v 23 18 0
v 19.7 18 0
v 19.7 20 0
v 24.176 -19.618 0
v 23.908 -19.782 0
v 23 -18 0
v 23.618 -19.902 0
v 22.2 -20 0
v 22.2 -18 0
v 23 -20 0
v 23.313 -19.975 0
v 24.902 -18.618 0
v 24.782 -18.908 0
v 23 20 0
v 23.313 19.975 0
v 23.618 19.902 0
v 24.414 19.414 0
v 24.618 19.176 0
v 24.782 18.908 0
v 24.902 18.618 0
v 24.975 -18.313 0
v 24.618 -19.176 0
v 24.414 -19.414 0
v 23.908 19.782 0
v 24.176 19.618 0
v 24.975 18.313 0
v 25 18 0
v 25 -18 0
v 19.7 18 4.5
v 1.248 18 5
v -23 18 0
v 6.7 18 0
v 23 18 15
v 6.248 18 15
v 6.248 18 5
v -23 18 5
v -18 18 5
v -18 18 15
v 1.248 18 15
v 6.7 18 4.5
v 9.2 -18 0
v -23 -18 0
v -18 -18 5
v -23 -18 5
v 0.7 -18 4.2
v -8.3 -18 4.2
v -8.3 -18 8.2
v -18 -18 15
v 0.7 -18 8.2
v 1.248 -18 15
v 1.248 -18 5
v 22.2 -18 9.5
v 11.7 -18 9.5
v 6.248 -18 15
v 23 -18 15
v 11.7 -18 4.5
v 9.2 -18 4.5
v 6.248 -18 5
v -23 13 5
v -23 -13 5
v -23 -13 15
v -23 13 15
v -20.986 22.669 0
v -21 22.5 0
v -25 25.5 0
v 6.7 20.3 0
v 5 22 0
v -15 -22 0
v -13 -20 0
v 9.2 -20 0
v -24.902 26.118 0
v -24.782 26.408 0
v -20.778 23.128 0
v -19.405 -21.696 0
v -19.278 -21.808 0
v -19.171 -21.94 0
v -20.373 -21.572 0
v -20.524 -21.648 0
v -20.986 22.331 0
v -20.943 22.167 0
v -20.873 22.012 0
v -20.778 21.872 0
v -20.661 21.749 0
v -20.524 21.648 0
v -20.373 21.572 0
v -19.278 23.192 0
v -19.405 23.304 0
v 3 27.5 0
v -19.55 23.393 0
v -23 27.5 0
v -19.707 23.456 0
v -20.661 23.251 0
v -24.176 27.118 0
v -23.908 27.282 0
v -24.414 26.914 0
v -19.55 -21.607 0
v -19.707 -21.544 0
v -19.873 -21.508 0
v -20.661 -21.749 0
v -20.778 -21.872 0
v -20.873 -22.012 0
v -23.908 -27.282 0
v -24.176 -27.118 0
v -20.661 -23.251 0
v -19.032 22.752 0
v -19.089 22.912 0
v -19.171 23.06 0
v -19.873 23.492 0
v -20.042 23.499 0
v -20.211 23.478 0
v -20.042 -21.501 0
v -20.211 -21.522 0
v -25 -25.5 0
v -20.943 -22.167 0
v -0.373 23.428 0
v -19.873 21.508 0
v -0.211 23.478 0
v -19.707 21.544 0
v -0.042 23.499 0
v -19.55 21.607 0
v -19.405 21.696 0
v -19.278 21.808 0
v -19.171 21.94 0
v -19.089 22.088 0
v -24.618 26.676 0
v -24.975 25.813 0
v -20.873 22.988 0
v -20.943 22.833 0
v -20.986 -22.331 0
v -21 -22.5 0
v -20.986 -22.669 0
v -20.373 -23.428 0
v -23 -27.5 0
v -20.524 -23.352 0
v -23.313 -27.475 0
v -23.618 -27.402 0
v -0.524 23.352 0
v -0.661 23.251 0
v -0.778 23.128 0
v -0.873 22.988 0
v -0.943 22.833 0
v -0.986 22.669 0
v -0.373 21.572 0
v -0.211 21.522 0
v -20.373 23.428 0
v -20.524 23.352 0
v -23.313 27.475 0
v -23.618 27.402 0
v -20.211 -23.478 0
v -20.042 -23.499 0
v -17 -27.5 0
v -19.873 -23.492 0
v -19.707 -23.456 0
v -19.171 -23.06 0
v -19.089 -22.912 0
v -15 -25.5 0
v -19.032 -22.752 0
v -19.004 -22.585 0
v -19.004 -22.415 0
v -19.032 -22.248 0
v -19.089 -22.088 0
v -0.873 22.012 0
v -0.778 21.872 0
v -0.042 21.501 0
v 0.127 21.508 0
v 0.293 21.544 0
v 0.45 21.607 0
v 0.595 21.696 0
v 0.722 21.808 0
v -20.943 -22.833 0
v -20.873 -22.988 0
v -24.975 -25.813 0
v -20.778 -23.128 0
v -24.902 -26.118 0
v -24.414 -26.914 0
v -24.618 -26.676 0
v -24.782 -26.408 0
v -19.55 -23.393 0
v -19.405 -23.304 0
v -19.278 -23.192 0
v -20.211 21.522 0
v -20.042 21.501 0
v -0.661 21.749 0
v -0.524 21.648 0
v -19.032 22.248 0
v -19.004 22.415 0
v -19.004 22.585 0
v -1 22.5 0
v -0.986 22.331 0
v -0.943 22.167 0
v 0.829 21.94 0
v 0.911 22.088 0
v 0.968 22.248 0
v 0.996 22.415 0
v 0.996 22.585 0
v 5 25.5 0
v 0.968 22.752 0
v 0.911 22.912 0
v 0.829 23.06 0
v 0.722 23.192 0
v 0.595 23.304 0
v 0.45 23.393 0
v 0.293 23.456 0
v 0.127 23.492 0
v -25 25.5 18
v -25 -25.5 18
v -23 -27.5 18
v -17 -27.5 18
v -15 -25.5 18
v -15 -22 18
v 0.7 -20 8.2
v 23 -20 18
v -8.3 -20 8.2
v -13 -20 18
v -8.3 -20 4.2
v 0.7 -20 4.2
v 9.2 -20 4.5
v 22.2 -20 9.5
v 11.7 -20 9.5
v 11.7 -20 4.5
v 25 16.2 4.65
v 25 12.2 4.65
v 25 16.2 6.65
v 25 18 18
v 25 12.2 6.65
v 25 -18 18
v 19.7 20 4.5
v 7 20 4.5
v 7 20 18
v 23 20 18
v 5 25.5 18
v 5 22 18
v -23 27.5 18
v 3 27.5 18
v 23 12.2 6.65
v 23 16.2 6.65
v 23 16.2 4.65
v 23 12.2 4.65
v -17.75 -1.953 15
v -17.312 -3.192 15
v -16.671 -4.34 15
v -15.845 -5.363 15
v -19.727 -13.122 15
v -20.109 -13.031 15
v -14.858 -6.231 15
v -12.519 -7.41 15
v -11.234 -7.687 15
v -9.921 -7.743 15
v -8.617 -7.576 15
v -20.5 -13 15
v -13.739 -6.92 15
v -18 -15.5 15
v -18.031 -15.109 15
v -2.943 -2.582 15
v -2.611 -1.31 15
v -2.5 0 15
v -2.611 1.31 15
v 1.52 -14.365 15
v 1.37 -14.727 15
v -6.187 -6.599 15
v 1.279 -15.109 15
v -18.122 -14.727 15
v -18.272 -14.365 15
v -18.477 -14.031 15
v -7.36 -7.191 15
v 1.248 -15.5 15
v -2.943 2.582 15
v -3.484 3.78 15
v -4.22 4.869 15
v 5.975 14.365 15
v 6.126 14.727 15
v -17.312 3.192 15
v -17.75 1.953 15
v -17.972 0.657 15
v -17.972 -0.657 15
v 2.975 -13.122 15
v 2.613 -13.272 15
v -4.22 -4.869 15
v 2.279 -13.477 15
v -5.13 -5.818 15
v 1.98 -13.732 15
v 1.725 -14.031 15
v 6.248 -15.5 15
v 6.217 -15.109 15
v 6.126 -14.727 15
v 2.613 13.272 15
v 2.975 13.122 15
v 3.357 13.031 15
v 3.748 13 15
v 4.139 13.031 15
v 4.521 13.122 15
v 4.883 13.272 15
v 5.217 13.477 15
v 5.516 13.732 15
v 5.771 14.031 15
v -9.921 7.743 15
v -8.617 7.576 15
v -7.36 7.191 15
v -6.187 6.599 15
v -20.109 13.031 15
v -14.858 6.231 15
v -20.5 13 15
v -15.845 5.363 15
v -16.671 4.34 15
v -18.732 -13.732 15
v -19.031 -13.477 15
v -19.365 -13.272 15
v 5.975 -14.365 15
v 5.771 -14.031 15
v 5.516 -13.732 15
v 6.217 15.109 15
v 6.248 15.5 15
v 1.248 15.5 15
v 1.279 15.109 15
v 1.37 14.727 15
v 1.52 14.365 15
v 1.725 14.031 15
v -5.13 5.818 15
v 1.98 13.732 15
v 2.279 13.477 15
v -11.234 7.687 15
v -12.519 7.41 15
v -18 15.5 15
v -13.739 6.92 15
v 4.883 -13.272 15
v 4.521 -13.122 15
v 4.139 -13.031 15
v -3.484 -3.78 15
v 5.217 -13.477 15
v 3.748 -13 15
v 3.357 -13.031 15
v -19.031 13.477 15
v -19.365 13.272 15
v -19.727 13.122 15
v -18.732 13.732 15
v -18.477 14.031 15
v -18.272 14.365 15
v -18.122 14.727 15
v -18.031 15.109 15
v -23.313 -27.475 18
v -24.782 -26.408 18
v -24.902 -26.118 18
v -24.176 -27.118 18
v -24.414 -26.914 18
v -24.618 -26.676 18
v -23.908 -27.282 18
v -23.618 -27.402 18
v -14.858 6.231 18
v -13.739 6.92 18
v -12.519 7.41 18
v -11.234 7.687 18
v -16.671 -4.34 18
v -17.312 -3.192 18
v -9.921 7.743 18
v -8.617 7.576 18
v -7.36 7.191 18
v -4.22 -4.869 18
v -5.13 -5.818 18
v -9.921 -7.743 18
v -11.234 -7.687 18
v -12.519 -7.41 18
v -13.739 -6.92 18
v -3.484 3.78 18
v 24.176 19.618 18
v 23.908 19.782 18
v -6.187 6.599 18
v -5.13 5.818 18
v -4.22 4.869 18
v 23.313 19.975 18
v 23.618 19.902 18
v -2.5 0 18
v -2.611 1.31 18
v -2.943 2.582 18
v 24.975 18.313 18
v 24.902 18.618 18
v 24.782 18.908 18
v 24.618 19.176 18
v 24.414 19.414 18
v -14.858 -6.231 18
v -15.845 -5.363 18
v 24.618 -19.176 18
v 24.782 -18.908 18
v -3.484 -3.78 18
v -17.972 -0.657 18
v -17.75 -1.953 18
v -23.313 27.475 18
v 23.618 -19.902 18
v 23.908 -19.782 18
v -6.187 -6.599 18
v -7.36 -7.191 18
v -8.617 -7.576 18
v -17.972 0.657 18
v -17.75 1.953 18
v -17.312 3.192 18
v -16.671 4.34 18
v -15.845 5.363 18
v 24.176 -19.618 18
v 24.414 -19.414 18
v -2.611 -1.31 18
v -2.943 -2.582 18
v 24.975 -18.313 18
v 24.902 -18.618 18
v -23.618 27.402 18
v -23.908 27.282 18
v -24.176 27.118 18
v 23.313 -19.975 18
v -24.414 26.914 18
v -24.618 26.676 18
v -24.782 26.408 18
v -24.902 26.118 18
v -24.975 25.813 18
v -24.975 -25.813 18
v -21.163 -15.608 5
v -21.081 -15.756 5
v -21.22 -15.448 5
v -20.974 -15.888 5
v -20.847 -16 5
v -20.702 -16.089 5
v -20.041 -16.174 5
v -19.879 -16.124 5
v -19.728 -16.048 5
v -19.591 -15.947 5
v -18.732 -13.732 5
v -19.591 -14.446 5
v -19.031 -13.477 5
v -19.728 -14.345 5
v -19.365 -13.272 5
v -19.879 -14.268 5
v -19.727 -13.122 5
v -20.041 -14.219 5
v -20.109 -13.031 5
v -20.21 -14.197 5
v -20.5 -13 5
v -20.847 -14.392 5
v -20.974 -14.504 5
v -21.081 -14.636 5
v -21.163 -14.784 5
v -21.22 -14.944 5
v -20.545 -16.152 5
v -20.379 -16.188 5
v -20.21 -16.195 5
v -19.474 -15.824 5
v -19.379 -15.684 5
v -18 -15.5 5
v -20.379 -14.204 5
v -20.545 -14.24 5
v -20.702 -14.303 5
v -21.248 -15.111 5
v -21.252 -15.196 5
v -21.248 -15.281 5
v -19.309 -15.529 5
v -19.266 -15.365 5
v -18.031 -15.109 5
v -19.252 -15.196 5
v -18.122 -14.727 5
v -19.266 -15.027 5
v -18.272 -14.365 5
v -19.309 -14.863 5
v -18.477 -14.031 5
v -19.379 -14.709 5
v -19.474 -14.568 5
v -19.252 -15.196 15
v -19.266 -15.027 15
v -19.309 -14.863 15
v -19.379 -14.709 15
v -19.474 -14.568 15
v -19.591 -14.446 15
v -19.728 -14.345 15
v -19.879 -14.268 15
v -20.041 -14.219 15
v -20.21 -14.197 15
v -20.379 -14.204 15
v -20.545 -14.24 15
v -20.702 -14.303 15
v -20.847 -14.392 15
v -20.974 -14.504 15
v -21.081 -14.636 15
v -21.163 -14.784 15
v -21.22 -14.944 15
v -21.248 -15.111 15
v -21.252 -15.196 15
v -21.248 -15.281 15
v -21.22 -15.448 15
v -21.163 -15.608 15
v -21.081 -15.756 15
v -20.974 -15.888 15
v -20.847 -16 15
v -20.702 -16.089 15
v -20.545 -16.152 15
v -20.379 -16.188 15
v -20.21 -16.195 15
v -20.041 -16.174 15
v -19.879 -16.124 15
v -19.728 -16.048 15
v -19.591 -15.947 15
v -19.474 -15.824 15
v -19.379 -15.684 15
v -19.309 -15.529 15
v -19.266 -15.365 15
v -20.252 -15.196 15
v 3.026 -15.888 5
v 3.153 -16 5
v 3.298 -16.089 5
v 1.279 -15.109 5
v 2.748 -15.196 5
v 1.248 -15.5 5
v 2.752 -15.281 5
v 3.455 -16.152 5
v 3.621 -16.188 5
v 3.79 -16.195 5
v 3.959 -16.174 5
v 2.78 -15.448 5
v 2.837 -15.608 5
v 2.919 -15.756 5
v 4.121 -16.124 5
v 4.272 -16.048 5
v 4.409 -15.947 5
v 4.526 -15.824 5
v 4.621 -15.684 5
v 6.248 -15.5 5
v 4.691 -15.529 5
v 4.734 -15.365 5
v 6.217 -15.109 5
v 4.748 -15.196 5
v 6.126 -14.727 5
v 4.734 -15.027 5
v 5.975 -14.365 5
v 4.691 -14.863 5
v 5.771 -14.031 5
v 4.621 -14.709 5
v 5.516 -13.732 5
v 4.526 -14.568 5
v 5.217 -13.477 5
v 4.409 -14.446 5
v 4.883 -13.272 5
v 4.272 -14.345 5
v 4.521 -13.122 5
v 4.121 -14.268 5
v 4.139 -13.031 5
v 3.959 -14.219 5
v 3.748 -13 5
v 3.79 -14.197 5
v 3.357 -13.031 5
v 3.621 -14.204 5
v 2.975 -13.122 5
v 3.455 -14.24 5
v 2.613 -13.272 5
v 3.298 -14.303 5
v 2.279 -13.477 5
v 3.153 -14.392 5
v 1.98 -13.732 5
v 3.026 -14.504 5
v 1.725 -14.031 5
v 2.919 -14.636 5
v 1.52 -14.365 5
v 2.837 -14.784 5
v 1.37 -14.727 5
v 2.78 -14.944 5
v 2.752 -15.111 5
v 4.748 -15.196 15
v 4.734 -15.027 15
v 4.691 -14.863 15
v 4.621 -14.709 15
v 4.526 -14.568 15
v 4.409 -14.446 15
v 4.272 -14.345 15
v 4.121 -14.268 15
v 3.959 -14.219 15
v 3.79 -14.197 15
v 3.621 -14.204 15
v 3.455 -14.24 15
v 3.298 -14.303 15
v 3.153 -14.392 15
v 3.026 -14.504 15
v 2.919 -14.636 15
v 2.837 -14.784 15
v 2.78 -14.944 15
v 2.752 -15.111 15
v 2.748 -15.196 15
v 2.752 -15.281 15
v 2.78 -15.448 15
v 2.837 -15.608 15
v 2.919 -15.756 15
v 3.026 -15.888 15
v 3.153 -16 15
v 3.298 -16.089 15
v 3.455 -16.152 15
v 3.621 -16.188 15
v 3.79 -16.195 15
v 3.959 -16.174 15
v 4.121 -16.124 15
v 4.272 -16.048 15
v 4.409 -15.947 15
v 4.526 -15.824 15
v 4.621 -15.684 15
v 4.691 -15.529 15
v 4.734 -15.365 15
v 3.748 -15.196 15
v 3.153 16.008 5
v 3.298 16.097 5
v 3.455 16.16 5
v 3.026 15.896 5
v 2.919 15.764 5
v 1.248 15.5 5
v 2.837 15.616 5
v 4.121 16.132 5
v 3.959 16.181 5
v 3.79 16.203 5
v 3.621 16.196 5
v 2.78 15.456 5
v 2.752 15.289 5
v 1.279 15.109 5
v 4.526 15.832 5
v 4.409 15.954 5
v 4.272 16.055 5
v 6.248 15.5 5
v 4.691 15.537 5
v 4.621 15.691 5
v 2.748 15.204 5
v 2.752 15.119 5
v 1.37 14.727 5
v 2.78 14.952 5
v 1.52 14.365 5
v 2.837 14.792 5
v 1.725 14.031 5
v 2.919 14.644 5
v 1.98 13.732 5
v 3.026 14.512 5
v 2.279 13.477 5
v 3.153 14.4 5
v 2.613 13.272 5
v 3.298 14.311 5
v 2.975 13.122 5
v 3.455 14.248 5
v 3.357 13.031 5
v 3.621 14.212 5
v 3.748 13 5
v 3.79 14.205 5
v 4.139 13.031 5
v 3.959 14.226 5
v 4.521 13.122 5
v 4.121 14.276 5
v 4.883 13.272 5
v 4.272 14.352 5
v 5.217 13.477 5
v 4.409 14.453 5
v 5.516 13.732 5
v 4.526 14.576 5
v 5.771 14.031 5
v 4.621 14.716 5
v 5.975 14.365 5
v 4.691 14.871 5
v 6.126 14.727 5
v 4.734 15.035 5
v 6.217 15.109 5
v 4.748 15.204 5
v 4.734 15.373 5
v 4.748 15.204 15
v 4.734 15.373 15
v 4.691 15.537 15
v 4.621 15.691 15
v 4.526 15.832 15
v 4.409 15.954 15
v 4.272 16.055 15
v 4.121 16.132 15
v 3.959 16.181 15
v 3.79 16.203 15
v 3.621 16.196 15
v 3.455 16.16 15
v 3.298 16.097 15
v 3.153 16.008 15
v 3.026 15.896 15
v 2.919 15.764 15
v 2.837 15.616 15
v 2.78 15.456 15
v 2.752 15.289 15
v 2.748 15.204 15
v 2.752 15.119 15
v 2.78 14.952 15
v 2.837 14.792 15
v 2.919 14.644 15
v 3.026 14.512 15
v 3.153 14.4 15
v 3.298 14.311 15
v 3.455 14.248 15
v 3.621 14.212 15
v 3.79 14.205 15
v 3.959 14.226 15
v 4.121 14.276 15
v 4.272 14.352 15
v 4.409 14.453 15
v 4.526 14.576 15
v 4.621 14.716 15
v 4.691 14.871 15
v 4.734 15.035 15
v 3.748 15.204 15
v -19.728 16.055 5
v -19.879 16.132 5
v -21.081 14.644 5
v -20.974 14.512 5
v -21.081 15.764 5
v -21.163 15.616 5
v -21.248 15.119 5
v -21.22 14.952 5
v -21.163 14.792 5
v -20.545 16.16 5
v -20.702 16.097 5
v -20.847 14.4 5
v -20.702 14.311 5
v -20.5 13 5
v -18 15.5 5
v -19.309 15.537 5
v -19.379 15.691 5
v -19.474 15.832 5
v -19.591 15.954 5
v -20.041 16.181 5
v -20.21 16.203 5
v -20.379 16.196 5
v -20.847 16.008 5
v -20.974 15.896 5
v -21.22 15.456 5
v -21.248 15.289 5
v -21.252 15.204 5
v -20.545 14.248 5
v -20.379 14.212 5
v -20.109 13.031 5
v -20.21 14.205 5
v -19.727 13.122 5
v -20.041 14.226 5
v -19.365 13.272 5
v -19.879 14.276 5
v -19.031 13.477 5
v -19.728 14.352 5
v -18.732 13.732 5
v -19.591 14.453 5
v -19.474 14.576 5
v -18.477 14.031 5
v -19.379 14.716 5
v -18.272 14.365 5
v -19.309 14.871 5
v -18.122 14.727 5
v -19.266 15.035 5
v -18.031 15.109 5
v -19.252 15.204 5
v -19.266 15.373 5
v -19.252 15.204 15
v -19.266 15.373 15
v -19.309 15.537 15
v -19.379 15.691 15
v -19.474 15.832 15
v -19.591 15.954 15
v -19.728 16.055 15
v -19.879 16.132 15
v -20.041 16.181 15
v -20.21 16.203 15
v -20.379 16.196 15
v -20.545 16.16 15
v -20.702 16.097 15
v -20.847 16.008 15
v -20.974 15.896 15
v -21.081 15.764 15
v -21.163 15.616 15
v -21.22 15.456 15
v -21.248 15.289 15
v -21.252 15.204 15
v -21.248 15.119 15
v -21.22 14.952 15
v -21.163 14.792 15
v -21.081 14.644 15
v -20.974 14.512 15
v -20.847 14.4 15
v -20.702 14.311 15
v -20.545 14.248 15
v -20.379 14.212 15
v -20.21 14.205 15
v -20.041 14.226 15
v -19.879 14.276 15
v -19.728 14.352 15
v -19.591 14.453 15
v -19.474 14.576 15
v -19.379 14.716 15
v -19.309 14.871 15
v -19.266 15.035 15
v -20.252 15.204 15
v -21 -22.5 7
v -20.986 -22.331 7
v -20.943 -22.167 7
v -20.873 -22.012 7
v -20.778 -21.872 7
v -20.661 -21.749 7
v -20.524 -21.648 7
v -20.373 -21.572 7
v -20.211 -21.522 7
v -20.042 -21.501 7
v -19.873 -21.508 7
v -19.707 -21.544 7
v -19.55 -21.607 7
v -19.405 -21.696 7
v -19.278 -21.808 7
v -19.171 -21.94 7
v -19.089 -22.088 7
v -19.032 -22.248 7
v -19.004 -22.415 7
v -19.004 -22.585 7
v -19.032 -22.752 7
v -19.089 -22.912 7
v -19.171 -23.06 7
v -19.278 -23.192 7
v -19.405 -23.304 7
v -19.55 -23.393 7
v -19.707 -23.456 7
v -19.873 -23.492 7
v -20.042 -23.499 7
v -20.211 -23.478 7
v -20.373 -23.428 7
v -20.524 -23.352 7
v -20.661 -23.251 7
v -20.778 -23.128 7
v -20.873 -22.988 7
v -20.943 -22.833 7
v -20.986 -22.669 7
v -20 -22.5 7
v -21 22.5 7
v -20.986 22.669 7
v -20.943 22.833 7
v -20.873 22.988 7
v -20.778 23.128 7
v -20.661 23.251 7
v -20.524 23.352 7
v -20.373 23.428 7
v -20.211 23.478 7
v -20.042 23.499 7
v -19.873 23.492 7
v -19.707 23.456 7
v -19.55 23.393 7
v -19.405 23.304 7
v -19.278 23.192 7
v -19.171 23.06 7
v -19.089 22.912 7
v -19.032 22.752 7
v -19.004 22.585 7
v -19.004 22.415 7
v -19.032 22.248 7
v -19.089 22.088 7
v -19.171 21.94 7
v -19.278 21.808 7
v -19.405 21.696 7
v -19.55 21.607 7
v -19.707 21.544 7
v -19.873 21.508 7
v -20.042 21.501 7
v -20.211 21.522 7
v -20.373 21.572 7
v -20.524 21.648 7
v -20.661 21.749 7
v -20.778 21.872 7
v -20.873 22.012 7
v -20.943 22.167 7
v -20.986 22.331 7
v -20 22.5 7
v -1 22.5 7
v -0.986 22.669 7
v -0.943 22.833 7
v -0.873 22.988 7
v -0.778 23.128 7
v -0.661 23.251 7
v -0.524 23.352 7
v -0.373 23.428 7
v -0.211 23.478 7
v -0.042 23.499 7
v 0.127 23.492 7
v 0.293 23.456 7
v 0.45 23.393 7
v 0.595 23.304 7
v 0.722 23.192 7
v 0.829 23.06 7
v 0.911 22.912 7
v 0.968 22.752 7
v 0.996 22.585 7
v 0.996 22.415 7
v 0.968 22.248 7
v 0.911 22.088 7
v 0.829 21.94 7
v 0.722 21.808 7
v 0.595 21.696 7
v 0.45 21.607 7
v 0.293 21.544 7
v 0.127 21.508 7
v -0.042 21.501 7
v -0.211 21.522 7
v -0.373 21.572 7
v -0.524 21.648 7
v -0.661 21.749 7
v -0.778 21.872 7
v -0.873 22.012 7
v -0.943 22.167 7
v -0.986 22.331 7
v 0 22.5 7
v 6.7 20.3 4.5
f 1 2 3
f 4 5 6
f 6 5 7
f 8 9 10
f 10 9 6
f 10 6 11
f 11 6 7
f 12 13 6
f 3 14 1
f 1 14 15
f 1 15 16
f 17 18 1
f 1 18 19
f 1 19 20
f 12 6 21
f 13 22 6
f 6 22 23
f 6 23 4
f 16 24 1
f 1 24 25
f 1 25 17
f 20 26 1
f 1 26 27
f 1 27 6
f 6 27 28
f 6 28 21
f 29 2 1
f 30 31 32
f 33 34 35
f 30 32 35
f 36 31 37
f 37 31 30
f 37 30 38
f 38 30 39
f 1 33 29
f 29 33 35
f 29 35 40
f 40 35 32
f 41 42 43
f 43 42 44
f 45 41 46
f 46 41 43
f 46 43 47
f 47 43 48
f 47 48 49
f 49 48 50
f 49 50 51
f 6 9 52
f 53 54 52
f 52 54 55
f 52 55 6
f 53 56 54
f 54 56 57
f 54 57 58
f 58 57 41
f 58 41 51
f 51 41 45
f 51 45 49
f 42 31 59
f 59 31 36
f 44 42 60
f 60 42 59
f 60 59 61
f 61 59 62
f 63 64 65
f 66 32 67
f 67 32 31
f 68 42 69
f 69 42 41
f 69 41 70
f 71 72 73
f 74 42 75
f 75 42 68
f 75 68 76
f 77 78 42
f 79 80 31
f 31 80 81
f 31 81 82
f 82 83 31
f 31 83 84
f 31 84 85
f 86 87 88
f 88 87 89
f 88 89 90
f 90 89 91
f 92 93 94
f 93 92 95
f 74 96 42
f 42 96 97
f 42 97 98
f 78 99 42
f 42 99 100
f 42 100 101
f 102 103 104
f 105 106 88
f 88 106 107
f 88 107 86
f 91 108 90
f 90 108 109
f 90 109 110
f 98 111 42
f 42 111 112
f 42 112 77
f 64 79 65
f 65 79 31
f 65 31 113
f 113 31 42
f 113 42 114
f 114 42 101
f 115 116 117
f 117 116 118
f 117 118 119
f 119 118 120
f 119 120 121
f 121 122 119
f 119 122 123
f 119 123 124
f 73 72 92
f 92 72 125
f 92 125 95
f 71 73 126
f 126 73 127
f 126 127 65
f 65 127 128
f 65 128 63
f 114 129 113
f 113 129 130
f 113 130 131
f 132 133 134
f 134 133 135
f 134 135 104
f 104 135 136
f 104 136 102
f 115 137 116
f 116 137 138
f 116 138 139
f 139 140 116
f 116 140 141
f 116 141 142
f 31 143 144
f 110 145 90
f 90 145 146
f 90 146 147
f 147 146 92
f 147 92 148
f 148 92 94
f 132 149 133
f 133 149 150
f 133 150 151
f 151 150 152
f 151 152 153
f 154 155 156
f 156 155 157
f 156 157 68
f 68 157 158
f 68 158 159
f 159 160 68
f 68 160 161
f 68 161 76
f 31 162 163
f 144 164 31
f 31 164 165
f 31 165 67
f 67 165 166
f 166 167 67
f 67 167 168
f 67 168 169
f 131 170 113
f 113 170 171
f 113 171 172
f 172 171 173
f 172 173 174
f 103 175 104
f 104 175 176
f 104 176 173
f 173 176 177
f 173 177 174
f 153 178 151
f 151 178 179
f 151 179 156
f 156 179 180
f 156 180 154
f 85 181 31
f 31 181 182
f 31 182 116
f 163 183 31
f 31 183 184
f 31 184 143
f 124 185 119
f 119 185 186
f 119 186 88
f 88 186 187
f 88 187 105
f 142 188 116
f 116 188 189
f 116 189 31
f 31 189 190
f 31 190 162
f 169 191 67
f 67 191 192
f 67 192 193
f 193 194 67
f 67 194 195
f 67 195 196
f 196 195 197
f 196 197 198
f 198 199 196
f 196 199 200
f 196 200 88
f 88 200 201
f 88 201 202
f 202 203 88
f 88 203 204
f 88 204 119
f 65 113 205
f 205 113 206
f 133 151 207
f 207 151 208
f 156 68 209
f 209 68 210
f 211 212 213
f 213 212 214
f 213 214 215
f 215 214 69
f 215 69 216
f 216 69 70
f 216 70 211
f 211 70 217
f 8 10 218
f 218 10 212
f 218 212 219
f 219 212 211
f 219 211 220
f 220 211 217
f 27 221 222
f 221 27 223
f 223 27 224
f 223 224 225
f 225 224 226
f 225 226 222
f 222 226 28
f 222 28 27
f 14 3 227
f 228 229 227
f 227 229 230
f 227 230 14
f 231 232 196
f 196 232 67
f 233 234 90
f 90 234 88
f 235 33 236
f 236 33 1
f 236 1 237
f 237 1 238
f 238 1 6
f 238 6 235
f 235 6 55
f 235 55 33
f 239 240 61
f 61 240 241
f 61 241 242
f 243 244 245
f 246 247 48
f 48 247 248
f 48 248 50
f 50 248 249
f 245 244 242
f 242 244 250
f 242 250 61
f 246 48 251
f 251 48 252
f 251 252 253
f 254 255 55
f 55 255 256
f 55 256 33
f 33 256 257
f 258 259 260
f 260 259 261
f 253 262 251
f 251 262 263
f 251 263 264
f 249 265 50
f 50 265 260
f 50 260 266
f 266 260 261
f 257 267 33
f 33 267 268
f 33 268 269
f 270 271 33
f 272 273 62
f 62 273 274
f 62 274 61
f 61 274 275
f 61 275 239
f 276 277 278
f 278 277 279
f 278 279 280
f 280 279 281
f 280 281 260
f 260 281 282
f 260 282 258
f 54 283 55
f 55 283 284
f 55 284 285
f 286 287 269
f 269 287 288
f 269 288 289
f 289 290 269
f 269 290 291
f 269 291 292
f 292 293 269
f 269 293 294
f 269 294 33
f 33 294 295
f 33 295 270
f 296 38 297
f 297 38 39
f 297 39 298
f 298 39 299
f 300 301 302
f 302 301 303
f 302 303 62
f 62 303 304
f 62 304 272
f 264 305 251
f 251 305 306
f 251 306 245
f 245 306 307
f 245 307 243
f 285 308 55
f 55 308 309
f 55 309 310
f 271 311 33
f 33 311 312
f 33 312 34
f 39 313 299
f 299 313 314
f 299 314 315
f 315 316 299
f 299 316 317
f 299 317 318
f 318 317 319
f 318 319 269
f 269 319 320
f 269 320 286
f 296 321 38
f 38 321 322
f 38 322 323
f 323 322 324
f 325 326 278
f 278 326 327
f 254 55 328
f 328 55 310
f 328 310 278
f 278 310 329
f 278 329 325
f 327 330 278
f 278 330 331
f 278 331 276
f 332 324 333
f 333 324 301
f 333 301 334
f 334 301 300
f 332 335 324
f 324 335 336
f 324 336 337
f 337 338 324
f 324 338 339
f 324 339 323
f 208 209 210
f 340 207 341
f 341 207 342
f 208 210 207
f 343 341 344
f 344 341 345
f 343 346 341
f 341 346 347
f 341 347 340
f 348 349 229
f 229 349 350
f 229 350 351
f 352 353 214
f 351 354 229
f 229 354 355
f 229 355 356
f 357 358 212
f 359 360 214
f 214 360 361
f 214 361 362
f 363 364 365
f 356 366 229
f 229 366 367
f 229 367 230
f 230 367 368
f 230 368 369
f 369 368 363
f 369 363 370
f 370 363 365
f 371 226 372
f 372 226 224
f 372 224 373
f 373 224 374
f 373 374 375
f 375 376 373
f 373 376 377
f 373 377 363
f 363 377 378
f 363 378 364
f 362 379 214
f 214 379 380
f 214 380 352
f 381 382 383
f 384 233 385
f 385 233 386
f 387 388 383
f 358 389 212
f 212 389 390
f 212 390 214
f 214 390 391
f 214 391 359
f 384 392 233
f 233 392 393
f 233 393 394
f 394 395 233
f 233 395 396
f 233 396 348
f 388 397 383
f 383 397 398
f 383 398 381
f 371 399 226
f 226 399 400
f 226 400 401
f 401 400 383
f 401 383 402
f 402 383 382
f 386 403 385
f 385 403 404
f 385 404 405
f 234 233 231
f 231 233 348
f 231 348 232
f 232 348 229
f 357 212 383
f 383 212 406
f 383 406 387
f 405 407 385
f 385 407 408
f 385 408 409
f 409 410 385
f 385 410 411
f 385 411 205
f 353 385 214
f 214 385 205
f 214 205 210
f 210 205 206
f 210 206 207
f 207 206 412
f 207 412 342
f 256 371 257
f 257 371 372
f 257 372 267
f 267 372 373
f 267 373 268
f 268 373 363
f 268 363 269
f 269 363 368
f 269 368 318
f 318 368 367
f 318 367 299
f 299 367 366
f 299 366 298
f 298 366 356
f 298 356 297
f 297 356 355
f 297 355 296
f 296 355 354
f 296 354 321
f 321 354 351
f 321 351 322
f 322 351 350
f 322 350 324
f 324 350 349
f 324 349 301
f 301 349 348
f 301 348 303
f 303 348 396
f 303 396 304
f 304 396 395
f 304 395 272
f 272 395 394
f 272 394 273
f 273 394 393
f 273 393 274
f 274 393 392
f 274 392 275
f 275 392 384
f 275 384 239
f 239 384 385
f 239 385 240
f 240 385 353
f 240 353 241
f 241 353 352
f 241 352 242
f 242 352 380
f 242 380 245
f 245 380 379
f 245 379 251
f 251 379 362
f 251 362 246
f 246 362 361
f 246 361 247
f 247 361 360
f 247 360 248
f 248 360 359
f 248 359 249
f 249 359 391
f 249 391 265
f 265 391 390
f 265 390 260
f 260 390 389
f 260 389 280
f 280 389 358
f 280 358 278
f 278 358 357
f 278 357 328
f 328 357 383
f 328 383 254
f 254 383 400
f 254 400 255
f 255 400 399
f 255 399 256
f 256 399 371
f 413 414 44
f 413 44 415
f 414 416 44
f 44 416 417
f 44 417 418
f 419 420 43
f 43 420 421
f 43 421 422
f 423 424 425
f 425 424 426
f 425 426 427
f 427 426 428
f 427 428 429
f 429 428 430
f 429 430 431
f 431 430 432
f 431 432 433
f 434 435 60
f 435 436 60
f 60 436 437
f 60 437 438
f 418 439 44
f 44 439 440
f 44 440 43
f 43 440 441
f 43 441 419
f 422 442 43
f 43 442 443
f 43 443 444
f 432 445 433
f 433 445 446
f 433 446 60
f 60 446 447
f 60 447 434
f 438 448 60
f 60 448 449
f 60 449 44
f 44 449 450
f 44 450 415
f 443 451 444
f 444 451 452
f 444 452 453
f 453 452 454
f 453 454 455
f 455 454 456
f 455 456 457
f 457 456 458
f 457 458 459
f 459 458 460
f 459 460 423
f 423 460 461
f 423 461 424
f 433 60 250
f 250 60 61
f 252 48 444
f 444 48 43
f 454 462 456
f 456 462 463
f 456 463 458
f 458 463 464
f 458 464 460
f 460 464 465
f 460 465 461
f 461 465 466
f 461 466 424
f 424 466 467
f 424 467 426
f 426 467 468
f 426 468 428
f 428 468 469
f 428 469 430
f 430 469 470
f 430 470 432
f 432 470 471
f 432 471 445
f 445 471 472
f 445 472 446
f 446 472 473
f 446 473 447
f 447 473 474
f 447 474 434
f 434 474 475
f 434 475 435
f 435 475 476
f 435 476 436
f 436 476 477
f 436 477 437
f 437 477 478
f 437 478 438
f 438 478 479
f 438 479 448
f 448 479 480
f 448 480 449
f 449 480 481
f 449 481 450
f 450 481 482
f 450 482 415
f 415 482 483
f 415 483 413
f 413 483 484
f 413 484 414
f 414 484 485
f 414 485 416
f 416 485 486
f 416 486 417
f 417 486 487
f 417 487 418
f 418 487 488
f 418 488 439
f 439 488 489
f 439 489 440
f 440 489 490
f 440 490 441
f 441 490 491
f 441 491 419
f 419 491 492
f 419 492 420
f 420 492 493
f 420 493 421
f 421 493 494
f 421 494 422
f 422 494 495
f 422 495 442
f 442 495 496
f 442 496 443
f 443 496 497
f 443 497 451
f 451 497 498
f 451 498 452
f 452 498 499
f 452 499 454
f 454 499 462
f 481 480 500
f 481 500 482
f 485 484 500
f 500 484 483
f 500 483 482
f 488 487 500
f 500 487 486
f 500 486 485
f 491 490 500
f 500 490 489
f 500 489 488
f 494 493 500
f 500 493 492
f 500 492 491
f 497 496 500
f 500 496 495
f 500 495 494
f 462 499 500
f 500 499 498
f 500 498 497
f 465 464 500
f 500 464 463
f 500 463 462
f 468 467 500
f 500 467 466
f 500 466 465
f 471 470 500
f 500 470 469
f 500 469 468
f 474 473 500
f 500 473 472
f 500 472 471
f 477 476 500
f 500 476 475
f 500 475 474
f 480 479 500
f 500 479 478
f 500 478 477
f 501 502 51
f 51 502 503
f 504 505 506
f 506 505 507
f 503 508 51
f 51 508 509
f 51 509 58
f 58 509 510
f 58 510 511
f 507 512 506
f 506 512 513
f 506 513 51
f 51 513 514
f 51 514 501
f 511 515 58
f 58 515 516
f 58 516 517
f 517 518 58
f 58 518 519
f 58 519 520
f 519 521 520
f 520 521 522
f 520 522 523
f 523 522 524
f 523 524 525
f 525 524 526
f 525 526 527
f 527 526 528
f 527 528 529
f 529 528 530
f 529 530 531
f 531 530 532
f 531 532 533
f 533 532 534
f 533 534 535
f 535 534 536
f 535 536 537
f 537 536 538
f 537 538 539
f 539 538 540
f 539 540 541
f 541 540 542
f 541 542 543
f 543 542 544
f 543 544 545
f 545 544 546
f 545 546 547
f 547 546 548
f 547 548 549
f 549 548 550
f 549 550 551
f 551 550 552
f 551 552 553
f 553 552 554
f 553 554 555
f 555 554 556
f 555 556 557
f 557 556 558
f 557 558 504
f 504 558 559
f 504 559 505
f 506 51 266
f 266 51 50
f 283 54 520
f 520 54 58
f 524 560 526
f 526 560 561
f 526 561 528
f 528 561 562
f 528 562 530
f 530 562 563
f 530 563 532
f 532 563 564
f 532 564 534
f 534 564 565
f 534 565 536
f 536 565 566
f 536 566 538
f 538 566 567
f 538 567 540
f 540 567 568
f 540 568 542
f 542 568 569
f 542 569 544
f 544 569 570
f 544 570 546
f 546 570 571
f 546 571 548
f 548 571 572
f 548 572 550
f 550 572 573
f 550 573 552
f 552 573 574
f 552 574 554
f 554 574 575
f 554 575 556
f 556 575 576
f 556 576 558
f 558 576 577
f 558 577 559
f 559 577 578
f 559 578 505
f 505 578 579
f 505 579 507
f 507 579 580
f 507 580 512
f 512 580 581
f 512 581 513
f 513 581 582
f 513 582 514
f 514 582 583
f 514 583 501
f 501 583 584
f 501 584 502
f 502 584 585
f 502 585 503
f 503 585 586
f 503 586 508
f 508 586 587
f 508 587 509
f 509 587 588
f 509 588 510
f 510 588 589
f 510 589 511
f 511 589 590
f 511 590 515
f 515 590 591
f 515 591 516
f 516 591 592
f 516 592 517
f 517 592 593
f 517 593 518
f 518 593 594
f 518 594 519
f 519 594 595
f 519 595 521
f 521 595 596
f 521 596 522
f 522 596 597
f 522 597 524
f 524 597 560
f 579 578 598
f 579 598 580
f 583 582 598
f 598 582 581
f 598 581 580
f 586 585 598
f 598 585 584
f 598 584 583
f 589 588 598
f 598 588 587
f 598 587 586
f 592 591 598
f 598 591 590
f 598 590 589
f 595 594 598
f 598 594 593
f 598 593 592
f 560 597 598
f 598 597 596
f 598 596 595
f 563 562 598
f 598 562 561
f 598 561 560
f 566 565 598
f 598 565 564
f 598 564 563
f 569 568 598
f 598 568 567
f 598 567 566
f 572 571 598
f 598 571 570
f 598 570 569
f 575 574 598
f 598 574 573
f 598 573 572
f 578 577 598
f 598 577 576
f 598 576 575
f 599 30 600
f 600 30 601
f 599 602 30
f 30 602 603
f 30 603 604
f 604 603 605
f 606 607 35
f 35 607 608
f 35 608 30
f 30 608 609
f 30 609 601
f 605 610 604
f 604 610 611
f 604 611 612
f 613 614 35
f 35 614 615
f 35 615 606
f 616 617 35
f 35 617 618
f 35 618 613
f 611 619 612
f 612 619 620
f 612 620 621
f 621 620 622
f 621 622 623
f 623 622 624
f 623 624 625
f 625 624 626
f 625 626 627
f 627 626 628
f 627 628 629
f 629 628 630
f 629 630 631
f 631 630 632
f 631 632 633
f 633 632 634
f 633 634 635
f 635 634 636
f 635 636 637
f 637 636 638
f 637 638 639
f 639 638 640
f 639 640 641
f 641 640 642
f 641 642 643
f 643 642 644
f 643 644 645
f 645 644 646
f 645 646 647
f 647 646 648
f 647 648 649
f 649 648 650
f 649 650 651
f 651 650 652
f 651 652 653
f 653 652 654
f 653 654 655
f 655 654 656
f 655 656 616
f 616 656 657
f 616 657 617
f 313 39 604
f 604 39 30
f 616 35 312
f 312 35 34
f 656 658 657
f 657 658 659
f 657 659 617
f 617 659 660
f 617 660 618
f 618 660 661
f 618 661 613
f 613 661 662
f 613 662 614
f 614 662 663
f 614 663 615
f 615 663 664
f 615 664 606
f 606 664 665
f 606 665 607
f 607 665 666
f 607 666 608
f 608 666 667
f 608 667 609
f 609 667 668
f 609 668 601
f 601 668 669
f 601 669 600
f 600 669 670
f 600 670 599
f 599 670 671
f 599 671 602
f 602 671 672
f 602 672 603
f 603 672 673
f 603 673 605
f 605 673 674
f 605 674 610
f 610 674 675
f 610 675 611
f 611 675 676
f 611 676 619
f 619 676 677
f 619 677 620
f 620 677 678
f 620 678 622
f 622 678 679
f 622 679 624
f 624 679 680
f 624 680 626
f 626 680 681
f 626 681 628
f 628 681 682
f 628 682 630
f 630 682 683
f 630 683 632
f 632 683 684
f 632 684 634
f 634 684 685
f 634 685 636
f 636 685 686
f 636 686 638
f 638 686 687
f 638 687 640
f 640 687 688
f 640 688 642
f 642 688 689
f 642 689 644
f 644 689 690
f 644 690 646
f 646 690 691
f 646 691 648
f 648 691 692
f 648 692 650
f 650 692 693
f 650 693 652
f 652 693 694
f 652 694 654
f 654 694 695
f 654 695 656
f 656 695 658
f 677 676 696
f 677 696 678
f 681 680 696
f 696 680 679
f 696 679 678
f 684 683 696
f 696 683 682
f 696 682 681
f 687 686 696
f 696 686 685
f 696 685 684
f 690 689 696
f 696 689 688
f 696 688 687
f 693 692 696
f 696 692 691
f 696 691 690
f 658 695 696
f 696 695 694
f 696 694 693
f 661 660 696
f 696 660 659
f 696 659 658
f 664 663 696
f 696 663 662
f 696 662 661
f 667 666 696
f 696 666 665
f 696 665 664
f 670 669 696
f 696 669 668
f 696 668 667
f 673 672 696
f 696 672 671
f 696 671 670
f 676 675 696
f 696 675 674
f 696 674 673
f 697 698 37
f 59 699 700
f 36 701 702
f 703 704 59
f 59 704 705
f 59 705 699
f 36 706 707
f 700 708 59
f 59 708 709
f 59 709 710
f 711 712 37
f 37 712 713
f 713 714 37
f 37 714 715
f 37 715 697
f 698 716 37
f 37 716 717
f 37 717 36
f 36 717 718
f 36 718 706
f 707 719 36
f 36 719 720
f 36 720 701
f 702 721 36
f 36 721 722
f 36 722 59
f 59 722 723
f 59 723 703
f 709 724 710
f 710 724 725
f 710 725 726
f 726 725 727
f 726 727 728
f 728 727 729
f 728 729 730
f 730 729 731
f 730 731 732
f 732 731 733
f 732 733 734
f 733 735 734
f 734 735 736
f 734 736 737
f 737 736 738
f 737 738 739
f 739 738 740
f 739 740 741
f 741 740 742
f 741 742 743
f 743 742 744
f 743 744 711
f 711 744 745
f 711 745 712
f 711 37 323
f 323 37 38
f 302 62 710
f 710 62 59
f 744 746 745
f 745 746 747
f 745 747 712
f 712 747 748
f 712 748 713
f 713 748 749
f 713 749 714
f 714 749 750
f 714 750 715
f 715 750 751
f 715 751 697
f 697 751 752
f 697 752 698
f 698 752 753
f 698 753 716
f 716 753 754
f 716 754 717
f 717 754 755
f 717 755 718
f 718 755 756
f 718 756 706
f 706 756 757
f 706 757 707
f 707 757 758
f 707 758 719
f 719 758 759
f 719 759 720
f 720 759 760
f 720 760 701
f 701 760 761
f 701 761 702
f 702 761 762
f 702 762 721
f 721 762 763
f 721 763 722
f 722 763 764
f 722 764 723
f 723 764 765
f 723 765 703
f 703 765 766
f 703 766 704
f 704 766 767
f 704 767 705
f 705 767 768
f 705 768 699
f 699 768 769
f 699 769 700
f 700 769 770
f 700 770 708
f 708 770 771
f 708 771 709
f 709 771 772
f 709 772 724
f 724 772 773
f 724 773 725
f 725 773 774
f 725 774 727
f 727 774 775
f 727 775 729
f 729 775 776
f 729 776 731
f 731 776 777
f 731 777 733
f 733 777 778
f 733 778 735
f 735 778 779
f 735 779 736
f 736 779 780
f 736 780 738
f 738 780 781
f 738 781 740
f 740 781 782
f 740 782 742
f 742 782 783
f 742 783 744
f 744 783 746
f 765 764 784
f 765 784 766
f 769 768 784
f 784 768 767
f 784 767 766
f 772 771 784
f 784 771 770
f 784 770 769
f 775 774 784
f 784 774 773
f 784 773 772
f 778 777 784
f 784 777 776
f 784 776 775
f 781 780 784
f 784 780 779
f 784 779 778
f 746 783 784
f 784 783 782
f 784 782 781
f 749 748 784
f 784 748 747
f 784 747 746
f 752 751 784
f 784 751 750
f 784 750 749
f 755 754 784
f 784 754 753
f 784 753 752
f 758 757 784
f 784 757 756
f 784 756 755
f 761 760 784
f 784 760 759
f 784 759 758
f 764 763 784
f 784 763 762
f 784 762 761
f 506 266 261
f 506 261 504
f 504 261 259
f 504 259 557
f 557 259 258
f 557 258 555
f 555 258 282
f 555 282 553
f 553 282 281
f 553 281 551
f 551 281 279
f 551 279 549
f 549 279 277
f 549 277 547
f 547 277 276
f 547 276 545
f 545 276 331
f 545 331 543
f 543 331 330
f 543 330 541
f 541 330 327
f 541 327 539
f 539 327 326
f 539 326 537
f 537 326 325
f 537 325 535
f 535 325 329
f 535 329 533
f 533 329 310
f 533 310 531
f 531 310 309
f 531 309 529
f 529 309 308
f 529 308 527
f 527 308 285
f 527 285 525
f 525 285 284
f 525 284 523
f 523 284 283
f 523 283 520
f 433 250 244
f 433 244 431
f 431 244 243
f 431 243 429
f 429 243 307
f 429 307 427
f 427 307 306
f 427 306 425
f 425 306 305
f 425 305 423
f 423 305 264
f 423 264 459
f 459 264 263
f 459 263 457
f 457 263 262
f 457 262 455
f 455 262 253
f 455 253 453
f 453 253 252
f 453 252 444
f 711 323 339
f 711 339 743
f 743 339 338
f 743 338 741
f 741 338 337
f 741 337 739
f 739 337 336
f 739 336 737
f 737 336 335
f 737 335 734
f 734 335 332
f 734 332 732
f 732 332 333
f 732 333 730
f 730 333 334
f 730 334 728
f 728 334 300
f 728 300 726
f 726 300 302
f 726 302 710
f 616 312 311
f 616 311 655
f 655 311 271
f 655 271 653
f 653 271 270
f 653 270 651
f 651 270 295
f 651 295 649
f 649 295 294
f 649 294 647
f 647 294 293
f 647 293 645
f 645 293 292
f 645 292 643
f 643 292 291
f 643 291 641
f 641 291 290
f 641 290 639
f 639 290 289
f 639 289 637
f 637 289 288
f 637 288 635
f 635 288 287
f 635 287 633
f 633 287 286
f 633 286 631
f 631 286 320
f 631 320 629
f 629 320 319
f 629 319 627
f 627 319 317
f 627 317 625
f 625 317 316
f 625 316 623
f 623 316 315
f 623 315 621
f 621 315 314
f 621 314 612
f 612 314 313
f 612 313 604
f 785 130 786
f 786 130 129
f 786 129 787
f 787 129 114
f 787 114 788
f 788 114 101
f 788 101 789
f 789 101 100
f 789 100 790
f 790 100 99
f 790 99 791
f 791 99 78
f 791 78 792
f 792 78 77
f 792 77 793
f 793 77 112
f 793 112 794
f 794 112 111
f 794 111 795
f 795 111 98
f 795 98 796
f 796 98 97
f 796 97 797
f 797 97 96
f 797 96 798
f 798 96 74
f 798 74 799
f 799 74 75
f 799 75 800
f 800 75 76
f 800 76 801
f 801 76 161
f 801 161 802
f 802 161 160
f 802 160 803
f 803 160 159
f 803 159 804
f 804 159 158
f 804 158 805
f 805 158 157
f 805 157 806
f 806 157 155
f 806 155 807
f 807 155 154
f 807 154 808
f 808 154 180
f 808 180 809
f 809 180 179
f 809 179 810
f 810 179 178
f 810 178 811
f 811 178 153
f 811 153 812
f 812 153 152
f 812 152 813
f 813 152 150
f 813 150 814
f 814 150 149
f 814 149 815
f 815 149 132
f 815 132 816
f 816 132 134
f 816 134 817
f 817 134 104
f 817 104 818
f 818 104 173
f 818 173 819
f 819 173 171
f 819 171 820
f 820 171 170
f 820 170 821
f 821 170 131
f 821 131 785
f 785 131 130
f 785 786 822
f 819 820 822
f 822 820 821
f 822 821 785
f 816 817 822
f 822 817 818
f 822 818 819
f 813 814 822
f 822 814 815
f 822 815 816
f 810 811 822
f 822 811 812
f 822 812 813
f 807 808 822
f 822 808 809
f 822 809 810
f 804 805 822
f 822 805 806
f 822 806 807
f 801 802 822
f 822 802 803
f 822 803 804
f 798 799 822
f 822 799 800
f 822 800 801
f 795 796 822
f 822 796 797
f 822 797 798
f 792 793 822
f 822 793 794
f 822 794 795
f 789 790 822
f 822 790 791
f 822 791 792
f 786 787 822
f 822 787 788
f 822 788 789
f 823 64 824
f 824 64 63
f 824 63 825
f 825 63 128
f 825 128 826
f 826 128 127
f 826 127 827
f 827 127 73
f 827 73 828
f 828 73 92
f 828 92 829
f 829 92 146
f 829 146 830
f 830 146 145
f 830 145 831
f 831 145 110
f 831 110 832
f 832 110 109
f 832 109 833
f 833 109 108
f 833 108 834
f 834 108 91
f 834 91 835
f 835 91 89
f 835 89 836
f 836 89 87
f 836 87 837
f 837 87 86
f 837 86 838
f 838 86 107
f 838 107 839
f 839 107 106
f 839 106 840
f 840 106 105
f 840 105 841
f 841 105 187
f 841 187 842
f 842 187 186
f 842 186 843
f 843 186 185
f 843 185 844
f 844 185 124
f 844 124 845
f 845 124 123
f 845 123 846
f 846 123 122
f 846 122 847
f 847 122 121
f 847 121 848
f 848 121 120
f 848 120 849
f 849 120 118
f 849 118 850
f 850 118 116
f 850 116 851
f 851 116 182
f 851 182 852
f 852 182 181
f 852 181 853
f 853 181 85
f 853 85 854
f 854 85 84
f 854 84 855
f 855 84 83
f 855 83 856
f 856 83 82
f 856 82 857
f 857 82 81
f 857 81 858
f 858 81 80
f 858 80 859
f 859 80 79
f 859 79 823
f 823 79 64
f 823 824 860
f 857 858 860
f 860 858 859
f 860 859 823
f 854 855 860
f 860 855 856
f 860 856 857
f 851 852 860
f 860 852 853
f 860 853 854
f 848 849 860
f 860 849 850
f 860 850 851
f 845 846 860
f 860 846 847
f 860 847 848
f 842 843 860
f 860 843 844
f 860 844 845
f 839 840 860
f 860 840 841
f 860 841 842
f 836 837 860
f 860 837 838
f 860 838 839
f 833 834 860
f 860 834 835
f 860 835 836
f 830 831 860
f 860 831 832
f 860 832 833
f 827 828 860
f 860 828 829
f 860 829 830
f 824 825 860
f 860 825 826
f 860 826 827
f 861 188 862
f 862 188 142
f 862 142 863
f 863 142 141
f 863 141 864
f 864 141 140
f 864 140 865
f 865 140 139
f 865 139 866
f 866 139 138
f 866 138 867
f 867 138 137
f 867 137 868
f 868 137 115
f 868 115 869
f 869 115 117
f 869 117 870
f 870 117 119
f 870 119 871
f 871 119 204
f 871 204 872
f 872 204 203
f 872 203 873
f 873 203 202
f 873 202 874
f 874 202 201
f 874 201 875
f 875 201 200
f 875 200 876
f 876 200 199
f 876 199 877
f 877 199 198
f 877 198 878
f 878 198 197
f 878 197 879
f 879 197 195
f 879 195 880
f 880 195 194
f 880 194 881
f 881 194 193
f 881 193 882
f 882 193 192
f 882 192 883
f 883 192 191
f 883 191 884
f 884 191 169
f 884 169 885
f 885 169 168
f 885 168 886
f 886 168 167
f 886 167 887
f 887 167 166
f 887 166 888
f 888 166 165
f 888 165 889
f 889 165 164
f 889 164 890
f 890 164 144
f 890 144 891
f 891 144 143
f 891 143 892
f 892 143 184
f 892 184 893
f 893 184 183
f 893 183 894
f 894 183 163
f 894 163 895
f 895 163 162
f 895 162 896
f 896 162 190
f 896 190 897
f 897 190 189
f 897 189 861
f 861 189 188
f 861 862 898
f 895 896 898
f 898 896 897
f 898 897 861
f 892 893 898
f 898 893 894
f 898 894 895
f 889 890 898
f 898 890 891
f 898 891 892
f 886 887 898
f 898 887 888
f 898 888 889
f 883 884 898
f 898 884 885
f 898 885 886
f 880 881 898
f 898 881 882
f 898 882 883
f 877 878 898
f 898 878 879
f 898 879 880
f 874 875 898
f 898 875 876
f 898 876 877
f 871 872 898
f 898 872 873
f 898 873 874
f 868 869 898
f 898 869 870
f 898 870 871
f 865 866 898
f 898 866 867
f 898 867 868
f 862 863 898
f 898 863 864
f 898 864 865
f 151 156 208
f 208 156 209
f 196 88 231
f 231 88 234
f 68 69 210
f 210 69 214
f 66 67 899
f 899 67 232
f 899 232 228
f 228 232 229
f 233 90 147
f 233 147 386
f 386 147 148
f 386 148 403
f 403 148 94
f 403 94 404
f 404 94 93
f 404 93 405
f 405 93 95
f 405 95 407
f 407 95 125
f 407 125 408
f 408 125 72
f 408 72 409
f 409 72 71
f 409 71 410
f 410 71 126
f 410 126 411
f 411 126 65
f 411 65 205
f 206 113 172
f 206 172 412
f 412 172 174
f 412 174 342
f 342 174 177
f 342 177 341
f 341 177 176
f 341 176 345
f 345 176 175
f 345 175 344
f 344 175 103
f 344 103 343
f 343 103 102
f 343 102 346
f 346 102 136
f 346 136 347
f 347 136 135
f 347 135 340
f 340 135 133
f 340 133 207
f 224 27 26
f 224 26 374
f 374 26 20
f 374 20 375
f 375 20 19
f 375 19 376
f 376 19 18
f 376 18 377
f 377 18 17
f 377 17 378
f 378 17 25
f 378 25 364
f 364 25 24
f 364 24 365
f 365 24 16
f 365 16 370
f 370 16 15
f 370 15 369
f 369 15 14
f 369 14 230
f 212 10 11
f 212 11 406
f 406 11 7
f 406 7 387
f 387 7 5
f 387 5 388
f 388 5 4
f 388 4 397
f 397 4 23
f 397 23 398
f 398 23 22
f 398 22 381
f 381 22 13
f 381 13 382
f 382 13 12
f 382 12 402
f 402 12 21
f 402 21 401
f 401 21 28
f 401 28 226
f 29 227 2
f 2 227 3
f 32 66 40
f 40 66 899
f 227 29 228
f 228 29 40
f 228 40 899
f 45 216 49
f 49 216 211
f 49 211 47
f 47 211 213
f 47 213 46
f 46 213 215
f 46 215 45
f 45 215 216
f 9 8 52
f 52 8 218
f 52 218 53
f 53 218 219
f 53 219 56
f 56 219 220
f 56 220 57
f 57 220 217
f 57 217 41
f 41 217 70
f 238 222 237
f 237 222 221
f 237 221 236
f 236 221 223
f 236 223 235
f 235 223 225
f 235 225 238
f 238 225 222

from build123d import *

# Parameters (mm, degrees)
SKETCH1_W           = 46
SKETCH1_H           = 36
BOSS_EXTRUDE1_DEPTH = 15
BOSS_EXTRUDE2_DEPTH = 3
SKETCH3_R           = 7.75
CUT_EXTRUDE1_DEPTH  = 10
SKETCH4_W           = 5
SKETCH4_H           = 5
SKETCH4_R           = 1
BOSS_EXTRUDE3_DEPTH = 10
FILLET1_R           = 2.5
SKETCH6_R           = 1
CUT_EXTRUDE2_DEPTH  = 10
CHAMFER1_SIZE       = 2
FILLET2_R           = 2
SKETCH7_W           = 13
SKETCH7_H           = 4.5
CUT_EXTRUDE3_DEPTH  = 10
SKETCH8_W           = 9
SKETCH8_H           = 4
CUT_EXTRUDE4_DEPTH  = 10
SKETCH9_W           = 2
SKETCH9_H           = 4
CUT_EXTRUDE5_DEPTH  = 10


with BuildPart() as part:
    # Sketch1 → Boss-Extrude1 (new body)
    with BuildSketch(Plane.XY):
        Polygon((-15, -27.5), (-15, -20), (25, -20), (25, 20), (5, 20), (5, 27.5), (-25, 27.5), (-25, -27.5), align=None)
        Rectangle(SKETCH1_W, SKETCH1_H, mode=Mode.SUBTRACT)
    extrude(amount=BOSS_EXTRUDE1_DEPTH)

    # Sketch2 → Boss-Extrude2 (add)
    with BuildSketch(Plane.XY.offset(15)):
        Polygon((-25, 27.5), (-25, -27.5), (-15, -27.5), (-15, -20), (25, -20), (25, 20), (5, 20), (5, 27.5), align=None)
    extrude(amount=BOSS_EXTRUDE2_DEPTH)

    # Sketch3 → Cut-Extrude1 (cut)
    with BuildSketch(Plane.XY.offset(18)):
        with Locations((-10.25, 0)):
            Circle(SKETCH3_R)
    extrude(amount=-CUT_EXTRUDE1_DEPTH, mode=Mode.SUBTRACT)

    # Sketch4 → Boss-Extrude3 (add)
    # profile 1 of 4: a face of its own
    with BuildSketch(Plane(origin=(0, 0, 15), x_dir=(-1, 0, 0), z_dir=(0, 0, -1))):
        with Locations((20.5, -15.5)):
            Rectangle(SKETCH4_W, SKETCH4_H)
        with Locations((20.252039878, -15.196246514)):
            Circle(SKETCH4_R, mode=Mode.SUBTRACT)
    # profile 2 of 4: a face of its own
    with BuildSketch(Plane(origin=(0, 0, 15), x_dir=(-1, 0, 0), z_dir=(0, 0, -1))):
        with Locations((-3.747960122, -15.5)):
            Rectangle(SKETCH4_W, SKETCH4_H)
        with Locations((-3.747960122, -15.196246514)):
            Circle(SKETCH4_R, mode=Mode.SUBTRACT)
    # profile 3 of 4: a face of its own
    with BuildSketch(Plane(origin=(0, 0, 15), x_dir=(-1, 0, 0), z_dir=(0, 0, -1))):
        with Locations((-3.747960122, 15.5)):
            Rectangle(SKETCH4_W, SKETCH4_H)
        with Locations((-3.747960122, 15.203753486)):
            Circle(SKETCH4_R, mode=Mode.SUBTRACT)
    # profile 4 of 4: a face of its own
    with BuildSketch(Plane(origin=(0, 0, 15), x_dir=(-1, 0, 0), z_dir=(0, 0, -1))):
        with Locations((20.5, 15.5)):
            Rectangle(SKETCH4_W, SKETCH4_H)
        with Locations((20.252039878, 15.203753486)):
            Circle(SKETCH4_R, mode=Mode.SUBTRACT)
    extrude(amount=BOSS_EXTRUDE3_DEPTH)

    # Fillet1
    fillet1_edges = [part.edges().sort_by_distance(p)[0] for p in [
        (1.247960122, 13, 10),
        (6.247960122, 13, 10),
        (-18, 13, 10),
        (-18, -13, 10),
        (1.247960122, -13, 10),
        (6.247960122, -13, 10),
    ]]
    fillet(fillet1_edges, radius=FILLET1_R - 0.0001)  # a hair under: the kernel refuses the full size

    # Sketch6 → Cut-Extrude2 (cut)
    with BuildSketch(Plane(origin=(0, 0, -3), x_dir=(-1, 0, 0), z_dir=(0, 0, -1))):
        with Locations((0, 22.5)):
            Circle(SKETCH6_R)
        with Locations((20, 22.5)):
            Circle(SKETCH6_R)
        with Locations((20, -22.5)):
            Circle(SKETCH6_R)
    extrude(amount=-CUT_EXTRUDE2_DEPTH, mode=Mode.SUBTRACT)

    # Chamfer1
    chamfer1_edges = [part.edges().sort_by_distance(p)[0] for p in [
        (5, 27.5, 9),
        (5, 20, 9),
        (-15, -20, 9),
        (-15, -27.5, 9),
    ]]
    chamfer(chamfer1_edges, length=CHAMFER1_SIZE)

    # Fillet2
    fillet2_edges = [part.edges().sort_by_distance(p)[0] for p in [
        (-25, 27.5, 9),
        (25, 20, 9),
        (25, -20, 9),
        (-25, -27.5, 9),
    ]]
    fillet(fillet2_edges, radius=FILLET2_R)

    # Sketch7 → Cut-Extrude3 (cut)
    with BuildSketch(Plane.XZ.offset(-18)):
        with Locations((13.2, 2.25)):
            Rectangle(SKETCH7_W, SKETCH7_H)
    extrude(amount=-CUT_EXTRUDE3_DEPTH, mode=Mode.SUBTRACT)

    # Sketch8 → Cut-Extrude4 (cut)
    with BuildSketch(Plane(origin=(0, -18, 0), x_dir=(1, 0, 0), z_dir=(0, 1, 0))):
        Polygon((22.2, 0), (9.2, 0), (9.2, -4.5), (11.7, -4.5), (11.7, -9.5), (22.2, -9.5), align=None)
        with Locations((-3.8, -6.2)):
            Rectangle(SKETCH8_W, SKETCH8_H)
    extrude(amount=-CUT_EXTRUDE4_DEPTH, mode=Mode.SUBTRACT)

    # Sketch9 → Cut-Extrude5 (cut)
    with BuildSketch(Plane.ZY.offset(-23)):
        with Locations((5.65, 14.2)):
            Rectangle(SKETCH9_W, SKETCH9_H)
    extrude(amount=-CUT_EXTRUDE5_DEPTH, mode=Mode.SUBTRACT)


solid = part.part
